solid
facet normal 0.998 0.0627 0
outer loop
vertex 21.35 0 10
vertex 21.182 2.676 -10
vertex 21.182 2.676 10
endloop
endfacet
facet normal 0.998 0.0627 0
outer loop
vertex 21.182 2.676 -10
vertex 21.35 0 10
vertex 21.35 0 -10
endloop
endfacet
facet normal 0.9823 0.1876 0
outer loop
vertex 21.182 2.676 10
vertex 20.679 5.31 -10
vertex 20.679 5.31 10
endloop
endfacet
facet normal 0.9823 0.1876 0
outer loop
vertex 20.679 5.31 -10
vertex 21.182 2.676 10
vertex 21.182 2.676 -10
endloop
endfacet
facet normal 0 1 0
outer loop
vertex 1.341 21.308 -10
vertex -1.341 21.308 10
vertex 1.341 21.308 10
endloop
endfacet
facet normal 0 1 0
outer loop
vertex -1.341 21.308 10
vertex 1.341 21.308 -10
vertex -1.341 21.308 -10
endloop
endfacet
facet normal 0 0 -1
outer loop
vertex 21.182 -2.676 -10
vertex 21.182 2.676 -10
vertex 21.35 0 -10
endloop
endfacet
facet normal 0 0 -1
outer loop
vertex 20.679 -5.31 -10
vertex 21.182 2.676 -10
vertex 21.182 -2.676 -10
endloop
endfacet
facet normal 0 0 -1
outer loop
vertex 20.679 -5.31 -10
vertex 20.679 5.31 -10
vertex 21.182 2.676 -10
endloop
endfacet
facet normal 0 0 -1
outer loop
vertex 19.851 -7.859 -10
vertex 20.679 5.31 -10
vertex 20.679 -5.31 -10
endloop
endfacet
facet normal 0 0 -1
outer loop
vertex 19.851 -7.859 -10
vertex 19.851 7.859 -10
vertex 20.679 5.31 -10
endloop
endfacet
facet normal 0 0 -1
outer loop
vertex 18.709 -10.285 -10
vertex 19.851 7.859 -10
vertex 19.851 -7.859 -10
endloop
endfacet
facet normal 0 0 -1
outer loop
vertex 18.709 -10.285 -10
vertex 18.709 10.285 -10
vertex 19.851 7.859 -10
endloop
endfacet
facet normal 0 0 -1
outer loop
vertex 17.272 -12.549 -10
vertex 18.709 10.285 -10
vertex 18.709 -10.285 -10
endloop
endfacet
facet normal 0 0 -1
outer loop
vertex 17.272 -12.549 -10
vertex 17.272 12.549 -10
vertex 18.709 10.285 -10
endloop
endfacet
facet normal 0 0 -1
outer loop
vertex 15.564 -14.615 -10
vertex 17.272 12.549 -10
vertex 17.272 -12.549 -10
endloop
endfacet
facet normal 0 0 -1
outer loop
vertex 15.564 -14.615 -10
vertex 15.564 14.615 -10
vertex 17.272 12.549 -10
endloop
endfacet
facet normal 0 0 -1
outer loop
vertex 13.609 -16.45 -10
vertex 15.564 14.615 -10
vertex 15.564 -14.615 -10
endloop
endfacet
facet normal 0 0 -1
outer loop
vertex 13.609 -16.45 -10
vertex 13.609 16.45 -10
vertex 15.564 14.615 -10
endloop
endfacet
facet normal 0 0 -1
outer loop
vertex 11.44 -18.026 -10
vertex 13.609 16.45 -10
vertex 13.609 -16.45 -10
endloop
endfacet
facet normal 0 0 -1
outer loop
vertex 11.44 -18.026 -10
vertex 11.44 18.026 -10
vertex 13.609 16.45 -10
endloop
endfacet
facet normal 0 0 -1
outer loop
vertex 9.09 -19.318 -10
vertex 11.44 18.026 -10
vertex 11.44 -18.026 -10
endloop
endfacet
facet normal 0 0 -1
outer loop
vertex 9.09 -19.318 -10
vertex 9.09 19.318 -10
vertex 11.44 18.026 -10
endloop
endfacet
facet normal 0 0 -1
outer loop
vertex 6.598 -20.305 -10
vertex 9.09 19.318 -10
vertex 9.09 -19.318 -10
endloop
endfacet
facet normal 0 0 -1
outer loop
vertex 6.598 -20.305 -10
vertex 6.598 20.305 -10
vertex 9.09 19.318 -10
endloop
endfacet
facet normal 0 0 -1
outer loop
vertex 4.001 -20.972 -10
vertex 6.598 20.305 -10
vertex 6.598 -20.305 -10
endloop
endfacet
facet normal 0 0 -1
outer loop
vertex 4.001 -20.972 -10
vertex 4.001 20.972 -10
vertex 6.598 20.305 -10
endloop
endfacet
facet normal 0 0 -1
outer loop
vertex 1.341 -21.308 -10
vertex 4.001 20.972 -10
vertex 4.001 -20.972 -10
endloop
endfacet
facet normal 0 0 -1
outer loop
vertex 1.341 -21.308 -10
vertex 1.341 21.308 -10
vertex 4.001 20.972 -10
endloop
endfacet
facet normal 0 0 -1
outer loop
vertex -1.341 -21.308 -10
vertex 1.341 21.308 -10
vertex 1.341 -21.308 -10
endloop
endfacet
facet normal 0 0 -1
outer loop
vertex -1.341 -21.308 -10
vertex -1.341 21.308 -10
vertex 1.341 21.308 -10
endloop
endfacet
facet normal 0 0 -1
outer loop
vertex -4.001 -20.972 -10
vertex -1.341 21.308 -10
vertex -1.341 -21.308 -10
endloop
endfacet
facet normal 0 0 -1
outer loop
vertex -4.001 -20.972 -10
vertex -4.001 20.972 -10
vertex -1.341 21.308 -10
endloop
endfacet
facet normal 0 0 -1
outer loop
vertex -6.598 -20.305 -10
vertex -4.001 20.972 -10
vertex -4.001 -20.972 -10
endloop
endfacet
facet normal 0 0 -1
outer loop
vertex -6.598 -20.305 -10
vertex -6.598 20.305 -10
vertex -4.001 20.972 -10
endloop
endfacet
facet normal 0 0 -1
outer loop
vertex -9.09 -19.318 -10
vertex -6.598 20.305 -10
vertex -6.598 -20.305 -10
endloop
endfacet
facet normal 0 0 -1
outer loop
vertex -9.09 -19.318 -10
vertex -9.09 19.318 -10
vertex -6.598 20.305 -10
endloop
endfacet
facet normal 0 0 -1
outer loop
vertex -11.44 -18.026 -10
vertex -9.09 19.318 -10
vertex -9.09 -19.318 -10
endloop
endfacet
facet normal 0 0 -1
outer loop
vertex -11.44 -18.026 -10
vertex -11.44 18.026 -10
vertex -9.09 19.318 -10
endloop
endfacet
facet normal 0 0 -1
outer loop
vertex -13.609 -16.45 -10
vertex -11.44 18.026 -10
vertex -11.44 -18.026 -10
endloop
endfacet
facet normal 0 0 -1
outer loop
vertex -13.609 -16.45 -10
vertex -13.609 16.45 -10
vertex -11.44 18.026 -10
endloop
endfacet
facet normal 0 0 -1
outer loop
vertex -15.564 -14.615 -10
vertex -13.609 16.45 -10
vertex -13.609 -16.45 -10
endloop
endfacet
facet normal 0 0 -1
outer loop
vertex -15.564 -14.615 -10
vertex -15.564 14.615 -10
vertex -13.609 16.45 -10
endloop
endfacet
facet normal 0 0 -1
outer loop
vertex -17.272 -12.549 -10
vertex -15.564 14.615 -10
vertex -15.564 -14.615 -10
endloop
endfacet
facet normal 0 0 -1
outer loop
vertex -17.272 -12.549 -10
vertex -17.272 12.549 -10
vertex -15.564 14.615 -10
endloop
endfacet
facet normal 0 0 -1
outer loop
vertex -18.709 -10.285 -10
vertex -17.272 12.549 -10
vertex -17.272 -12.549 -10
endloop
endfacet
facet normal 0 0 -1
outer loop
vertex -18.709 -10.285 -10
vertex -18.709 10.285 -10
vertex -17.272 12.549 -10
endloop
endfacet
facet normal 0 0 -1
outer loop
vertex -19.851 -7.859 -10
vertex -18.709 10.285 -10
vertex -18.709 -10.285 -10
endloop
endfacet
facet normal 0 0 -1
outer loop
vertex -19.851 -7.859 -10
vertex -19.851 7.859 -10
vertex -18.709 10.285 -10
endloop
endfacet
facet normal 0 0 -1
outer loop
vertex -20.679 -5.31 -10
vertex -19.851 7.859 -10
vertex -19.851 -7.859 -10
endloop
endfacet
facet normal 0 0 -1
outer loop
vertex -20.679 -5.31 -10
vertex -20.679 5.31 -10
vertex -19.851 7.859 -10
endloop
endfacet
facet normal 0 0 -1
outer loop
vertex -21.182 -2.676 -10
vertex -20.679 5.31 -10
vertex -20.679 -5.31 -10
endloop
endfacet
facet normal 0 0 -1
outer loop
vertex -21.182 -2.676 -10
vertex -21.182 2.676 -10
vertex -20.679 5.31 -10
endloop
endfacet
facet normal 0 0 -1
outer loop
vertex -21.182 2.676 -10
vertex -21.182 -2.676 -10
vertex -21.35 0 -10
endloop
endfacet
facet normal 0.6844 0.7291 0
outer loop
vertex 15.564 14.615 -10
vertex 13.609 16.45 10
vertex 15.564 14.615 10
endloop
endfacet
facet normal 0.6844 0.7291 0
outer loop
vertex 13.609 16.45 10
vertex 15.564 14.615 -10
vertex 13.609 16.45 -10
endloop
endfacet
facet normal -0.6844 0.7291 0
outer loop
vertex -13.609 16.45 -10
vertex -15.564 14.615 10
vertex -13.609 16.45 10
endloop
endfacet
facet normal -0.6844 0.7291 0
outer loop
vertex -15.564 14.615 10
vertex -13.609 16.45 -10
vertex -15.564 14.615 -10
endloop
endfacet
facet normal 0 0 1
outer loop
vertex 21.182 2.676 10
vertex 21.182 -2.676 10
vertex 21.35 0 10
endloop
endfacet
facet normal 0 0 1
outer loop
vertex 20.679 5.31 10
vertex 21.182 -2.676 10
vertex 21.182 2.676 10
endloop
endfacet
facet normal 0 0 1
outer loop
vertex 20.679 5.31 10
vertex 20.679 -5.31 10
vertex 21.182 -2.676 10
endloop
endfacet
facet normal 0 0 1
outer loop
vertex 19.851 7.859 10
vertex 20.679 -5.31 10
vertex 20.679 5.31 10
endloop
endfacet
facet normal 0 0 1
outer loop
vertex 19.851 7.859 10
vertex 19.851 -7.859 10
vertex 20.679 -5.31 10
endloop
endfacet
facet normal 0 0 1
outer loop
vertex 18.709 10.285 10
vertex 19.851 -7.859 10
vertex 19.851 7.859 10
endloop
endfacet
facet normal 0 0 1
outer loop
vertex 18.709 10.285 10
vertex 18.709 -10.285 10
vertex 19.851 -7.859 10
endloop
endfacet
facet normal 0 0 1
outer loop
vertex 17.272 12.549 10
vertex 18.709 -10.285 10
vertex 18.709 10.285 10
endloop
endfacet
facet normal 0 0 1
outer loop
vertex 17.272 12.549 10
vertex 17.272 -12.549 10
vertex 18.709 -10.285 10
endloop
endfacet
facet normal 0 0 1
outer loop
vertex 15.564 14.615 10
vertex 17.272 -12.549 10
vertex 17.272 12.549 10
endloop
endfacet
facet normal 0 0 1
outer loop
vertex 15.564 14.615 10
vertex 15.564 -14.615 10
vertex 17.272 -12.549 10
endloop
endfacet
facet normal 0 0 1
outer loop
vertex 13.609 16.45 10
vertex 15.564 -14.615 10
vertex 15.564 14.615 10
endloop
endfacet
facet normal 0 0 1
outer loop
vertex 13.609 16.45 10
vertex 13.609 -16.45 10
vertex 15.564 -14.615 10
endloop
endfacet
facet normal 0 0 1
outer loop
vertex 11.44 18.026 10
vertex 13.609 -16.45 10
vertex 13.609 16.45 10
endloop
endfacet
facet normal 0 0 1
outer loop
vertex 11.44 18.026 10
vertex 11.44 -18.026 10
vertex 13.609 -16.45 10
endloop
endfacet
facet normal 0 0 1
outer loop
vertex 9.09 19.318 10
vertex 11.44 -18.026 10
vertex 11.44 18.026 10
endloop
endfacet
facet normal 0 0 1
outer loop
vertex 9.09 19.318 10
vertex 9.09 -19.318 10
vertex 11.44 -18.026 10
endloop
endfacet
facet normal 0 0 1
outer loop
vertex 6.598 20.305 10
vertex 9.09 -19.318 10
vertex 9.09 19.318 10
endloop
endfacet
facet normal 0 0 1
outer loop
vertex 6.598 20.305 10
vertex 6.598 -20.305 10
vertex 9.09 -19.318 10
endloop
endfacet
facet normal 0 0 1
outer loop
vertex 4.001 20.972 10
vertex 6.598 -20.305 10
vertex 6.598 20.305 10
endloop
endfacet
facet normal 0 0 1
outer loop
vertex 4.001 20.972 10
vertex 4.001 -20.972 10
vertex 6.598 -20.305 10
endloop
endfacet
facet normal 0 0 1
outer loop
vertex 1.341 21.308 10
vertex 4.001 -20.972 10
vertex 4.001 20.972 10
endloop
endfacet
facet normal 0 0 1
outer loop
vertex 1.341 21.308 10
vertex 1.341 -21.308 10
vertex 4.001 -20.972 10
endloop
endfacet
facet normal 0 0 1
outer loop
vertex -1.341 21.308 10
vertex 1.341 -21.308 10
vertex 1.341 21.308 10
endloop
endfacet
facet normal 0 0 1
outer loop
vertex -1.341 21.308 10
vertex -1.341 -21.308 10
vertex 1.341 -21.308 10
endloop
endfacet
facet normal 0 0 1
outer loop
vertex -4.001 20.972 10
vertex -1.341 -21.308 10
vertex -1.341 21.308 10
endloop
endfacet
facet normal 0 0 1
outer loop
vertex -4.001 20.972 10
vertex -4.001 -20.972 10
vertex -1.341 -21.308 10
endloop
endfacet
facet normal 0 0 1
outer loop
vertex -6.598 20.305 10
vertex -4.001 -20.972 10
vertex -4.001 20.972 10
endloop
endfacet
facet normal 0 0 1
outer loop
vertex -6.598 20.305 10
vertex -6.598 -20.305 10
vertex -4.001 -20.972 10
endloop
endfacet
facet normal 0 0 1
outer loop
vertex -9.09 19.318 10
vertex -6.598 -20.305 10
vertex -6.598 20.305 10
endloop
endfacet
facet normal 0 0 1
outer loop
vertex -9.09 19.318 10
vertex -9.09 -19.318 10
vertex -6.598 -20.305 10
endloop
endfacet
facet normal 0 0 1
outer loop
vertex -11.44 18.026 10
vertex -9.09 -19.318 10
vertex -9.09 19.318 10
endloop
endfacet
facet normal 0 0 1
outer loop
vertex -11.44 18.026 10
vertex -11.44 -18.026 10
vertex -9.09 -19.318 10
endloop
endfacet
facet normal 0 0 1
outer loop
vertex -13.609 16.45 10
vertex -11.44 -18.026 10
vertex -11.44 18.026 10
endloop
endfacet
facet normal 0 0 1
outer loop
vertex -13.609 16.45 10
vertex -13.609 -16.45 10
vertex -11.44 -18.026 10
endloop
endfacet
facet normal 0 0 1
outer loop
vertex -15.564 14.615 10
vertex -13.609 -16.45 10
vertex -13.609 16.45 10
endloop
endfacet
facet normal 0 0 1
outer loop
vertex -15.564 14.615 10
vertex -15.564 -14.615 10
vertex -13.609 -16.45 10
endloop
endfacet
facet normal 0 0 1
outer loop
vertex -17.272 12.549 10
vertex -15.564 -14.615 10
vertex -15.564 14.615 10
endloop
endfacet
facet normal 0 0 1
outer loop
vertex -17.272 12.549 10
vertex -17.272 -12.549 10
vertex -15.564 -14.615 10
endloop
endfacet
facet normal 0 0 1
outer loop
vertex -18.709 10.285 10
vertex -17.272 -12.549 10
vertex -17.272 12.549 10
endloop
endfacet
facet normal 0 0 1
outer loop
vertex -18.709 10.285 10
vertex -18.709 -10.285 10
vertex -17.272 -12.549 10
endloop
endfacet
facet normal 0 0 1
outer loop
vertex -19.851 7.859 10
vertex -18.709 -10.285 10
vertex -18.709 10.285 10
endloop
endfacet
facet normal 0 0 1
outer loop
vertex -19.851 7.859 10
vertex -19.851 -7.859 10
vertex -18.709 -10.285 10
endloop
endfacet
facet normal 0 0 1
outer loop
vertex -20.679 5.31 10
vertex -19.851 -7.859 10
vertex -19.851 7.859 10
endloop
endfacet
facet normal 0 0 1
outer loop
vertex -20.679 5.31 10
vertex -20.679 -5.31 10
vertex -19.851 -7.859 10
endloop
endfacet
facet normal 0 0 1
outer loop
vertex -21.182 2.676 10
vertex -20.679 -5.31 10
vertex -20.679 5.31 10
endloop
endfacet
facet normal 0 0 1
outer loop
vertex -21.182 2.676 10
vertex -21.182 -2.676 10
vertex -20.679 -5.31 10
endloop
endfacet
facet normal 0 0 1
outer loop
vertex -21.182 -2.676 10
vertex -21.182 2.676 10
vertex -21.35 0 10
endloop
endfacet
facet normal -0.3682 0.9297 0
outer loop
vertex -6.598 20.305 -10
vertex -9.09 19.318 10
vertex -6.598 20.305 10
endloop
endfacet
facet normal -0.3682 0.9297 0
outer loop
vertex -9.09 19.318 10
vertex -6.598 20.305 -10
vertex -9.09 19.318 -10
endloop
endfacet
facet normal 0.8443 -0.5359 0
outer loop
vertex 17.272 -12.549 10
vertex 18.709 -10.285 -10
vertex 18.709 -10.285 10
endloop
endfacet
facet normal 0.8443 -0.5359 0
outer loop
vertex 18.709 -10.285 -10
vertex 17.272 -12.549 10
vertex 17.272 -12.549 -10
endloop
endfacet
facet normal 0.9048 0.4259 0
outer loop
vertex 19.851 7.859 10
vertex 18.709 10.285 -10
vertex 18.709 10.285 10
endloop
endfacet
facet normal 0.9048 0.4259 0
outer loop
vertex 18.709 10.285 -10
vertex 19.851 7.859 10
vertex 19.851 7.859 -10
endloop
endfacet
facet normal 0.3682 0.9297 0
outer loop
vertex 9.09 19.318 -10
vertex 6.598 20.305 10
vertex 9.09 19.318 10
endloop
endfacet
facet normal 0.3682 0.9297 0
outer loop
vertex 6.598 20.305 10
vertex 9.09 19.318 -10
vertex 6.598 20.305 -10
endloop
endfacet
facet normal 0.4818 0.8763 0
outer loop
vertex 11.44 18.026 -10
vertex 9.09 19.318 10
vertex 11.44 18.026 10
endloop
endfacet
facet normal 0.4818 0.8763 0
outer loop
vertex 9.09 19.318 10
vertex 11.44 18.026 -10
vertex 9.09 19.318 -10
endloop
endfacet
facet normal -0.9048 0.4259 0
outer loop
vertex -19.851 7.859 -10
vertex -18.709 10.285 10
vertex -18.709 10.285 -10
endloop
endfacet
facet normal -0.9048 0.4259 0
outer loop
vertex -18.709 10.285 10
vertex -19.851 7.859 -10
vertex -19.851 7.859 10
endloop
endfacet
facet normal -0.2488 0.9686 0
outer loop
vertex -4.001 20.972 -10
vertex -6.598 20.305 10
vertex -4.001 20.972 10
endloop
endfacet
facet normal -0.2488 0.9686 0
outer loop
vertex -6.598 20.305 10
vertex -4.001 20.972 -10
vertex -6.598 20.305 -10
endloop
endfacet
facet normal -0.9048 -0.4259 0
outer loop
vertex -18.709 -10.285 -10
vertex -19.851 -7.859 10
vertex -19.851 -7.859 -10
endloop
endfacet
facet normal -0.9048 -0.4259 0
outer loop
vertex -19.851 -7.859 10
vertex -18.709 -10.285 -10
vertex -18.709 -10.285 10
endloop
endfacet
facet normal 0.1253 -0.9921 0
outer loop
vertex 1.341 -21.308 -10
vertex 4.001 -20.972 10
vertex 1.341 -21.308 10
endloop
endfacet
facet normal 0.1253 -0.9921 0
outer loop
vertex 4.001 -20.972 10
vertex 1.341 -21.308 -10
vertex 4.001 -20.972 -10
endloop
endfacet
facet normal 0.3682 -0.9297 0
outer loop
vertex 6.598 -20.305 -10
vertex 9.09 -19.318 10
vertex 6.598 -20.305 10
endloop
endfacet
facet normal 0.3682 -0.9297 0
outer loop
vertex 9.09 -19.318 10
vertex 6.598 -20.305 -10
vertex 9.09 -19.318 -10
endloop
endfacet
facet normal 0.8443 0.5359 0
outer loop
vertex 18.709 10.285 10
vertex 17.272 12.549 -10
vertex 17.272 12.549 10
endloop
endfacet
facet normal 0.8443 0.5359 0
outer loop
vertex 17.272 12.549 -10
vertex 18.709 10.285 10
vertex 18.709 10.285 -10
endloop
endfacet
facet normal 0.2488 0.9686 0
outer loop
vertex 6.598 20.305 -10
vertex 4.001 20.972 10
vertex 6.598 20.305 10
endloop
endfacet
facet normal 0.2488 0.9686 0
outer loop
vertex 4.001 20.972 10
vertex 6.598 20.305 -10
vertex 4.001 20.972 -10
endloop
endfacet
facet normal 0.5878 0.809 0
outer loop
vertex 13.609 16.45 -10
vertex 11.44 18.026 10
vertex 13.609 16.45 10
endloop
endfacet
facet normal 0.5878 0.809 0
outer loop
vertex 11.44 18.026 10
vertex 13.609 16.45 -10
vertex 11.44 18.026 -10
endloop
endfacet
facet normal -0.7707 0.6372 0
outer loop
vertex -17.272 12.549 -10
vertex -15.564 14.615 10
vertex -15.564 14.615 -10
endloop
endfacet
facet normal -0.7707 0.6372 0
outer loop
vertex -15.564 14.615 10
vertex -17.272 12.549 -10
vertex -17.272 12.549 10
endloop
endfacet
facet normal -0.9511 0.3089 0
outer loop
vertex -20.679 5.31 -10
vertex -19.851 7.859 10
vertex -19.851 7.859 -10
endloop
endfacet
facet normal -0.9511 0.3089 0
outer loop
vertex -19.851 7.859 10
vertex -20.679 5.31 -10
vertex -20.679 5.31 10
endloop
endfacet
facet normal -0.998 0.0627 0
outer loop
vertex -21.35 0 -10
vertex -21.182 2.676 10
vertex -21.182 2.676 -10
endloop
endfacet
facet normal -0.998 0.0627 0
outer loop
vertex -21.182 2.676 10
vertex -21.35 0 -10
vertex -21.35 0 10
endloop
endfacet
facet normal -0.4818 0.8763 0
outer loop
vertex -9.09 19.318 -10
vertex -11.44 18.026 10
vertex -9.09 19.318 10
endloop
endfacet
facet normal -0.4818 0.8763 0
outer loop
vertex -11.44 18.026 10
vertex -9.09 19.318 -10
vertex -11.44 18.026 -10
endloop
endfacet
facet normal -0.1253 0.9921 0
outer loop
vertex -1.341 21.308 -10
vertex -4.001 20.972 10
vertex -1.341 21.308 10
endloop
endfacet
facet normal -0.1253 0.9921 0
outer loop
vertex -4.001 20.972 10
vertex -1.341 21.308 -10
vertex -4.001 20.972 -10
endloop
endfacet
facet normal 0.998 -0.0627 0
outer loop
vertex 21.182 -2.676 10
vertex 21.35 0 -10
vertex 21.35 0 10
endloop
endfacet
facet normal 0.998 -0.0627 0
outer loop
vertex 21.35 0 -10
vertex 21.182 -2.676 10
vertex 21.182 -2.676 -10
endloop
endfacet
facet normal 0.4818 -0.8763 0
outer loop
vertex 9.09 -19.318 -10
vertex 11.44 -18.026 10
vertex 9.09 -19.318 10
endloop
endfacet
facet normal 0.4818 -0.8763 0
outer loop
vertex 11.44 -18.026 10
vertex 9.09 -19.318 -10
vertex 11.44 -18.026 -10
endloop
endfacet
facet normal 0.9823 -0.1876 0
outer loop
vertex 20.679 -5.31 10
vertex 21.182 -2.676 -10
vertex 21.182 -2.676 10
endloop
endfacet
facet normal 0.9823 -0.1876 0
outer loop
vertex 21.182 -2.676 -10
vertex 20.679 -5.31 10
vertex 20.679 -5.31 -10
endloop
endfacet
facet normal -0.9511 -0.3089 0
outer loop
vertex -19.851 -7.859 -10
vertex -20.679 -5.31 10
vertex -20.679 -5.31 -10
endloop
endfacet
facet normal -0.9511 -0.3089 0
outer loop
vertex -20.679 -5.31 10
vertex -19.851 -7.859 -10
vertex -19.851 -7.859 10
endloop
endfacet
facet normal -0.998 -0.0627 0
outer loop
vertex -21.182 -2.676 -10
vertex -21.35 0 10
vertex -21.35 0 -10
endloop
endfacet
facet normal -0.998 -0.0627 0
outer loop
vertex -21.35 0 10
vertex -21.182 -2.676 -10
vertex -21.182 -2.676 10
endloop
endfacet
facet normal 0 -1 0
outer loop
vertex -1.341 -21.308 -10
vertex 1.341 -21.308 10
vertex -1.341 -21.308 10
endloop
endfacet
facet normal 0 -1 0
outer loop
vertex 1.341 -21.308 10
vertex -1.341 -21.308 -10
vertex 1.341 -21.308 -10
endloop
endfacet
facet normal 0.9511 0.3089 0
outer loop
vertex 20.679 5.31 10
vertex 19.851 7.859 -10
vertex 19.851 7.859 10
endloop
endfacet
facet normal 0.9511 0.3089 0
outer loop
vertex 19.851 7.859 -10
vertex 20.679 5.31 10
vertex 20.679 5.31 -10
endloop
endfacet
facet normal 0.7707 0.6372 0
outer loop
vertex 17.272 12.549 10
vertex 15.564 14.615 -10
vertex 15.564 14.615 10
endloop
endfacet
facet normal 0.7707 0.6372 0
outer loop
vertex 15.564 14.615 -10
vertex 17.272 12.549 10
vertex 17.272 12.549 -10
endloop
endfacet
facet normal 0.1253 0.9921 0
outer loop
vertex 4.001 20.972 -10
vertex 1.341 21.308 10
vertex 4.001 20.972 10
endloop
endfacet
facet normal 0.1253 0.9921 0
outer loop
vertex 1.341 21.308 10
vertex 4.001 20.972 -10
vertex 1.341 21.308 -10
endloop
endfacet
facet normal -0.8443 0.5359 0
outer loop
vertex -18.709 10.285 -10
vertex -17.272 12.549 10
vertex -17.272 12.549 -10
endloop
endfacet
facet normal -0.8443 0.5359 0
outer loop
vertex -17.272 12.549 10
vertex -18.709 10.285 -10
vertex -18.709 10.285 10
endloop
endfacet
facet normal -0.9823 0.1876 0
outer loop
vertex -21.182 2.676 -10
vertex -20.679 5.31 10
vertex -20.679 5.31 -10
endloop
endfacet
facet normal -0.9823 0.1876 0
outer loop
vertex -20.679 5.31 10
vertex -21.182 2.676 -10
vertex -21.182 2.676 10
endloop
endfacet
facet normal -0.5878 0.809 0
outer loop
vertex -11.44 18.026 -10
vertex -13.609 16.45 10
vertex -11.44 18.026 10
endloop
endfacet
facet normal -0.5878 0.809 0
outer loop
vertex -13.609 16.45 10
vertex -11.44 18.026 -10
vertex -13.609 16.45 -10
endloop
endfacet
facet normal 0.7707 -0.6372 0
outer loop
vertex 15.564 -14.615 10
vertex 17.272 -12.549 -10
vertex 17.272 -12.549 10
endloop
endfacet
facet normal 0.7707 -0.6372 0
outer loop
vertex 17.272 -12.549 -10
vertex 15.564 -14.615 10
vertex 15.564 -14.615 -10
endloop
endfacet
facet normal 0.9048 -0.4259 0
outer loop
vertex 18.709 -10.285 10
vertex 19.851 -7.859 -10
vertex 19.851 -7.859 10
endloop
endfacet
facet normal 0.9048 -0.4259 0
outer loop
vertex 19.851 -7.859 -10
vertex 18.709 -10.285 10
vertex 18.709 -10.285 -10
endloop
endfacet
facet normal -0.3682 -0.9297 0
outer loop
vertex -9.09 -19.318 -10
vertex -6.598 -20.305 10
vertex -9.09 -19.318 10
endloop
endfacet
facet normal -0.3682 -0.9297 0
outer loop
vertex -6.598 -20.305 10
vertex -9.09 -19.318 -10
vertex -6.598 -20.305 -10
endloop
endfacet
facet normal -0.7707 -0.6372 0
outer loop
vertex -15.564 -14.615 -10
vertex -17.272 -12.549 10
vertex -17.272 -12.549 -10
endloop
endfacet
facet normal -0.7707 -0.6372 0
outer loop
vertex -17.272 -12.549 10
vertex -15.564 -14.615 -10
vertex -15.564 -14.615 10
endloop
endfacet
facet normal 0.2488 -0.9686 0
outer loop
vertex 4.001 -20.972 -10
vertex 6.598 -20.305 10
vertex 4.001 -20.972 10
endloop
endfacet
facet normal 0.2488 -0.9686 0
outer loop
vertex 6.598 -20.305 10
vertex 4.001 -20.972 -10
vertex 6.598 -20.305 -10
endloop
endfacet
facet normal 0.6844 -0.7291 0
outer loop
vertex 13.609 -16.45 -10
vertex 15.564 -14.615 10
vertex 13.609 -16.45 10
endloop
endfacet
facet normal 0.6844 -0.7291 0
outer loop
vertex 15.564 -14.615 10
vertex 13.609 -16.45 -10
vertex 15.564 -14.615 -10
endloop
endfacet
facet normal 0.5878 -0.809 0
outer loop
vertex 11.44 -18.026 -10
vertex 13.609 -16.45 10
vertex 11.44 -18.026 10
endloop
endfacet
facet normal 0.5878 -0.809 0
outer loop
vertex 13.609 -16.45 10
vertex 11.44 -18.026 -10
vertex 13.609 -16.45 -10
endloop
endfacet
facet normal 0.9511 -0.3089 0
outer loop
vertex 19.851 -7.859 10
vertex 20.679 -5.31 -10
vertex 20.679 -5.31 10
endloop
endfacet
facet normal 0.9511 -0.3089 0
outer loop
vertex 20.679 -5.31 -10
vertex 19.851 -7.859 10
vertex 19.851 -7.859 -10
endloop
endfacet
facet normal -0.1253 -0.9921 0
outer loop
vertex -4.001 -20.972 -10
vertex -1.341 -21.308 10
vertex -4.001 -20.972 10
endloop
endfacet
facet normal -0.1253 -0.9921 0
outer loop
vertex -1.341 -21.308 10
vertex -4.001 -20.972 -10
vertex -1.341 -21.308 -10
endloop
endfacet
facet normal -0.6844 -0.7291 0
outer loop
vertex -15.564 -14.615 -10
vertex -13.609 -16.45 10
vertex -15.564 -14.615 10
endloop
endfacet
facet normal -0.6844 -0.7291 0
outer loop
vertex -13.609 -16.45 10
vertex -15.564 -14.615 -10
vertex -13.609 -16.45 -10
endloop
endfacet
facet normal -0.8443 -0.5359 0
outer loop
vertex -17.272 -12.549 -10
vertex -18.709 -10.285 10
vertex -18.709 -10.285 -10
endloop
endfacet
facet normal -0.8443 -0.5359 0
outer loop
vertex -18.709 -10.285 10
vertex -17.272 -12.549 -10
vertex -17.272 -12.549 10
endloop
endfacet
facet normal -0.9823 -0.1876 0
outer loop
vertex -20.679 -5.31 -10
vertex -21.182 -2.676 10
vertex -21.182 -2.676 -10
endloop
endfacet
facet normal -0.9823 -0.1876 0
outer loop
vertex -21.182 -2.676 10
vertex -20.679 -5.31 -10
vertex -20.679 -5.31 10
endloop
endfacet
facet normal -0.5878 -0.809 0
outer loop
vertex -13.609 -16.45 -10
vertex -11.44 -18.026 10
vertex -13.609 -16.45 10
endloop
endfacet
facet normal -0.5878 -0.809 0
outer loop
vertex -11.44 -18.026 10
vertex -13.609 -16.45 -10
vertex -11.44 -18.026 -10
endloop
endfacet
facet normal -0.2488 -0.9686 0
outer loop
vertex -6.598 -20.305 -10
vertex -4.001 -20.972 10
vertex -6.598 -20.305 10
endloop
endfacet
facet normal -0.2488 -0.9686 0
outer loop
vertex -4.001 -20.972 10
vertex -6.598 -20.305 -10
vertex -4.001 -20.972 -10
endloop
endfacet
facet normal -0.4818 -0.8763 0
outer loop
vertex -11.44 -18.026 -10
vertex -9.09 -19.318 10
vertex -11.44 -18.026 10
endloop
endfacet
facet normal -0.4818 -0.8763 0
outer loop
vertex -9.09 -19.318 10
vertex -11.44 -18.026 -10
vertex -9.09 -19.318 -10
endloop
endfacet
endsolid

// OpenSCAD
$fn = 50;


difference() {
	union() {
		translate(v = [0, 0, -10.0000000000]) {
			cylinder(h = 20, r = 21.3500000000);
		}
	}
	union() {
		translate(v = [0, 0, -100.0000000000]) {
			cylinder(h = 200, r = 0);
		}
	}
}
